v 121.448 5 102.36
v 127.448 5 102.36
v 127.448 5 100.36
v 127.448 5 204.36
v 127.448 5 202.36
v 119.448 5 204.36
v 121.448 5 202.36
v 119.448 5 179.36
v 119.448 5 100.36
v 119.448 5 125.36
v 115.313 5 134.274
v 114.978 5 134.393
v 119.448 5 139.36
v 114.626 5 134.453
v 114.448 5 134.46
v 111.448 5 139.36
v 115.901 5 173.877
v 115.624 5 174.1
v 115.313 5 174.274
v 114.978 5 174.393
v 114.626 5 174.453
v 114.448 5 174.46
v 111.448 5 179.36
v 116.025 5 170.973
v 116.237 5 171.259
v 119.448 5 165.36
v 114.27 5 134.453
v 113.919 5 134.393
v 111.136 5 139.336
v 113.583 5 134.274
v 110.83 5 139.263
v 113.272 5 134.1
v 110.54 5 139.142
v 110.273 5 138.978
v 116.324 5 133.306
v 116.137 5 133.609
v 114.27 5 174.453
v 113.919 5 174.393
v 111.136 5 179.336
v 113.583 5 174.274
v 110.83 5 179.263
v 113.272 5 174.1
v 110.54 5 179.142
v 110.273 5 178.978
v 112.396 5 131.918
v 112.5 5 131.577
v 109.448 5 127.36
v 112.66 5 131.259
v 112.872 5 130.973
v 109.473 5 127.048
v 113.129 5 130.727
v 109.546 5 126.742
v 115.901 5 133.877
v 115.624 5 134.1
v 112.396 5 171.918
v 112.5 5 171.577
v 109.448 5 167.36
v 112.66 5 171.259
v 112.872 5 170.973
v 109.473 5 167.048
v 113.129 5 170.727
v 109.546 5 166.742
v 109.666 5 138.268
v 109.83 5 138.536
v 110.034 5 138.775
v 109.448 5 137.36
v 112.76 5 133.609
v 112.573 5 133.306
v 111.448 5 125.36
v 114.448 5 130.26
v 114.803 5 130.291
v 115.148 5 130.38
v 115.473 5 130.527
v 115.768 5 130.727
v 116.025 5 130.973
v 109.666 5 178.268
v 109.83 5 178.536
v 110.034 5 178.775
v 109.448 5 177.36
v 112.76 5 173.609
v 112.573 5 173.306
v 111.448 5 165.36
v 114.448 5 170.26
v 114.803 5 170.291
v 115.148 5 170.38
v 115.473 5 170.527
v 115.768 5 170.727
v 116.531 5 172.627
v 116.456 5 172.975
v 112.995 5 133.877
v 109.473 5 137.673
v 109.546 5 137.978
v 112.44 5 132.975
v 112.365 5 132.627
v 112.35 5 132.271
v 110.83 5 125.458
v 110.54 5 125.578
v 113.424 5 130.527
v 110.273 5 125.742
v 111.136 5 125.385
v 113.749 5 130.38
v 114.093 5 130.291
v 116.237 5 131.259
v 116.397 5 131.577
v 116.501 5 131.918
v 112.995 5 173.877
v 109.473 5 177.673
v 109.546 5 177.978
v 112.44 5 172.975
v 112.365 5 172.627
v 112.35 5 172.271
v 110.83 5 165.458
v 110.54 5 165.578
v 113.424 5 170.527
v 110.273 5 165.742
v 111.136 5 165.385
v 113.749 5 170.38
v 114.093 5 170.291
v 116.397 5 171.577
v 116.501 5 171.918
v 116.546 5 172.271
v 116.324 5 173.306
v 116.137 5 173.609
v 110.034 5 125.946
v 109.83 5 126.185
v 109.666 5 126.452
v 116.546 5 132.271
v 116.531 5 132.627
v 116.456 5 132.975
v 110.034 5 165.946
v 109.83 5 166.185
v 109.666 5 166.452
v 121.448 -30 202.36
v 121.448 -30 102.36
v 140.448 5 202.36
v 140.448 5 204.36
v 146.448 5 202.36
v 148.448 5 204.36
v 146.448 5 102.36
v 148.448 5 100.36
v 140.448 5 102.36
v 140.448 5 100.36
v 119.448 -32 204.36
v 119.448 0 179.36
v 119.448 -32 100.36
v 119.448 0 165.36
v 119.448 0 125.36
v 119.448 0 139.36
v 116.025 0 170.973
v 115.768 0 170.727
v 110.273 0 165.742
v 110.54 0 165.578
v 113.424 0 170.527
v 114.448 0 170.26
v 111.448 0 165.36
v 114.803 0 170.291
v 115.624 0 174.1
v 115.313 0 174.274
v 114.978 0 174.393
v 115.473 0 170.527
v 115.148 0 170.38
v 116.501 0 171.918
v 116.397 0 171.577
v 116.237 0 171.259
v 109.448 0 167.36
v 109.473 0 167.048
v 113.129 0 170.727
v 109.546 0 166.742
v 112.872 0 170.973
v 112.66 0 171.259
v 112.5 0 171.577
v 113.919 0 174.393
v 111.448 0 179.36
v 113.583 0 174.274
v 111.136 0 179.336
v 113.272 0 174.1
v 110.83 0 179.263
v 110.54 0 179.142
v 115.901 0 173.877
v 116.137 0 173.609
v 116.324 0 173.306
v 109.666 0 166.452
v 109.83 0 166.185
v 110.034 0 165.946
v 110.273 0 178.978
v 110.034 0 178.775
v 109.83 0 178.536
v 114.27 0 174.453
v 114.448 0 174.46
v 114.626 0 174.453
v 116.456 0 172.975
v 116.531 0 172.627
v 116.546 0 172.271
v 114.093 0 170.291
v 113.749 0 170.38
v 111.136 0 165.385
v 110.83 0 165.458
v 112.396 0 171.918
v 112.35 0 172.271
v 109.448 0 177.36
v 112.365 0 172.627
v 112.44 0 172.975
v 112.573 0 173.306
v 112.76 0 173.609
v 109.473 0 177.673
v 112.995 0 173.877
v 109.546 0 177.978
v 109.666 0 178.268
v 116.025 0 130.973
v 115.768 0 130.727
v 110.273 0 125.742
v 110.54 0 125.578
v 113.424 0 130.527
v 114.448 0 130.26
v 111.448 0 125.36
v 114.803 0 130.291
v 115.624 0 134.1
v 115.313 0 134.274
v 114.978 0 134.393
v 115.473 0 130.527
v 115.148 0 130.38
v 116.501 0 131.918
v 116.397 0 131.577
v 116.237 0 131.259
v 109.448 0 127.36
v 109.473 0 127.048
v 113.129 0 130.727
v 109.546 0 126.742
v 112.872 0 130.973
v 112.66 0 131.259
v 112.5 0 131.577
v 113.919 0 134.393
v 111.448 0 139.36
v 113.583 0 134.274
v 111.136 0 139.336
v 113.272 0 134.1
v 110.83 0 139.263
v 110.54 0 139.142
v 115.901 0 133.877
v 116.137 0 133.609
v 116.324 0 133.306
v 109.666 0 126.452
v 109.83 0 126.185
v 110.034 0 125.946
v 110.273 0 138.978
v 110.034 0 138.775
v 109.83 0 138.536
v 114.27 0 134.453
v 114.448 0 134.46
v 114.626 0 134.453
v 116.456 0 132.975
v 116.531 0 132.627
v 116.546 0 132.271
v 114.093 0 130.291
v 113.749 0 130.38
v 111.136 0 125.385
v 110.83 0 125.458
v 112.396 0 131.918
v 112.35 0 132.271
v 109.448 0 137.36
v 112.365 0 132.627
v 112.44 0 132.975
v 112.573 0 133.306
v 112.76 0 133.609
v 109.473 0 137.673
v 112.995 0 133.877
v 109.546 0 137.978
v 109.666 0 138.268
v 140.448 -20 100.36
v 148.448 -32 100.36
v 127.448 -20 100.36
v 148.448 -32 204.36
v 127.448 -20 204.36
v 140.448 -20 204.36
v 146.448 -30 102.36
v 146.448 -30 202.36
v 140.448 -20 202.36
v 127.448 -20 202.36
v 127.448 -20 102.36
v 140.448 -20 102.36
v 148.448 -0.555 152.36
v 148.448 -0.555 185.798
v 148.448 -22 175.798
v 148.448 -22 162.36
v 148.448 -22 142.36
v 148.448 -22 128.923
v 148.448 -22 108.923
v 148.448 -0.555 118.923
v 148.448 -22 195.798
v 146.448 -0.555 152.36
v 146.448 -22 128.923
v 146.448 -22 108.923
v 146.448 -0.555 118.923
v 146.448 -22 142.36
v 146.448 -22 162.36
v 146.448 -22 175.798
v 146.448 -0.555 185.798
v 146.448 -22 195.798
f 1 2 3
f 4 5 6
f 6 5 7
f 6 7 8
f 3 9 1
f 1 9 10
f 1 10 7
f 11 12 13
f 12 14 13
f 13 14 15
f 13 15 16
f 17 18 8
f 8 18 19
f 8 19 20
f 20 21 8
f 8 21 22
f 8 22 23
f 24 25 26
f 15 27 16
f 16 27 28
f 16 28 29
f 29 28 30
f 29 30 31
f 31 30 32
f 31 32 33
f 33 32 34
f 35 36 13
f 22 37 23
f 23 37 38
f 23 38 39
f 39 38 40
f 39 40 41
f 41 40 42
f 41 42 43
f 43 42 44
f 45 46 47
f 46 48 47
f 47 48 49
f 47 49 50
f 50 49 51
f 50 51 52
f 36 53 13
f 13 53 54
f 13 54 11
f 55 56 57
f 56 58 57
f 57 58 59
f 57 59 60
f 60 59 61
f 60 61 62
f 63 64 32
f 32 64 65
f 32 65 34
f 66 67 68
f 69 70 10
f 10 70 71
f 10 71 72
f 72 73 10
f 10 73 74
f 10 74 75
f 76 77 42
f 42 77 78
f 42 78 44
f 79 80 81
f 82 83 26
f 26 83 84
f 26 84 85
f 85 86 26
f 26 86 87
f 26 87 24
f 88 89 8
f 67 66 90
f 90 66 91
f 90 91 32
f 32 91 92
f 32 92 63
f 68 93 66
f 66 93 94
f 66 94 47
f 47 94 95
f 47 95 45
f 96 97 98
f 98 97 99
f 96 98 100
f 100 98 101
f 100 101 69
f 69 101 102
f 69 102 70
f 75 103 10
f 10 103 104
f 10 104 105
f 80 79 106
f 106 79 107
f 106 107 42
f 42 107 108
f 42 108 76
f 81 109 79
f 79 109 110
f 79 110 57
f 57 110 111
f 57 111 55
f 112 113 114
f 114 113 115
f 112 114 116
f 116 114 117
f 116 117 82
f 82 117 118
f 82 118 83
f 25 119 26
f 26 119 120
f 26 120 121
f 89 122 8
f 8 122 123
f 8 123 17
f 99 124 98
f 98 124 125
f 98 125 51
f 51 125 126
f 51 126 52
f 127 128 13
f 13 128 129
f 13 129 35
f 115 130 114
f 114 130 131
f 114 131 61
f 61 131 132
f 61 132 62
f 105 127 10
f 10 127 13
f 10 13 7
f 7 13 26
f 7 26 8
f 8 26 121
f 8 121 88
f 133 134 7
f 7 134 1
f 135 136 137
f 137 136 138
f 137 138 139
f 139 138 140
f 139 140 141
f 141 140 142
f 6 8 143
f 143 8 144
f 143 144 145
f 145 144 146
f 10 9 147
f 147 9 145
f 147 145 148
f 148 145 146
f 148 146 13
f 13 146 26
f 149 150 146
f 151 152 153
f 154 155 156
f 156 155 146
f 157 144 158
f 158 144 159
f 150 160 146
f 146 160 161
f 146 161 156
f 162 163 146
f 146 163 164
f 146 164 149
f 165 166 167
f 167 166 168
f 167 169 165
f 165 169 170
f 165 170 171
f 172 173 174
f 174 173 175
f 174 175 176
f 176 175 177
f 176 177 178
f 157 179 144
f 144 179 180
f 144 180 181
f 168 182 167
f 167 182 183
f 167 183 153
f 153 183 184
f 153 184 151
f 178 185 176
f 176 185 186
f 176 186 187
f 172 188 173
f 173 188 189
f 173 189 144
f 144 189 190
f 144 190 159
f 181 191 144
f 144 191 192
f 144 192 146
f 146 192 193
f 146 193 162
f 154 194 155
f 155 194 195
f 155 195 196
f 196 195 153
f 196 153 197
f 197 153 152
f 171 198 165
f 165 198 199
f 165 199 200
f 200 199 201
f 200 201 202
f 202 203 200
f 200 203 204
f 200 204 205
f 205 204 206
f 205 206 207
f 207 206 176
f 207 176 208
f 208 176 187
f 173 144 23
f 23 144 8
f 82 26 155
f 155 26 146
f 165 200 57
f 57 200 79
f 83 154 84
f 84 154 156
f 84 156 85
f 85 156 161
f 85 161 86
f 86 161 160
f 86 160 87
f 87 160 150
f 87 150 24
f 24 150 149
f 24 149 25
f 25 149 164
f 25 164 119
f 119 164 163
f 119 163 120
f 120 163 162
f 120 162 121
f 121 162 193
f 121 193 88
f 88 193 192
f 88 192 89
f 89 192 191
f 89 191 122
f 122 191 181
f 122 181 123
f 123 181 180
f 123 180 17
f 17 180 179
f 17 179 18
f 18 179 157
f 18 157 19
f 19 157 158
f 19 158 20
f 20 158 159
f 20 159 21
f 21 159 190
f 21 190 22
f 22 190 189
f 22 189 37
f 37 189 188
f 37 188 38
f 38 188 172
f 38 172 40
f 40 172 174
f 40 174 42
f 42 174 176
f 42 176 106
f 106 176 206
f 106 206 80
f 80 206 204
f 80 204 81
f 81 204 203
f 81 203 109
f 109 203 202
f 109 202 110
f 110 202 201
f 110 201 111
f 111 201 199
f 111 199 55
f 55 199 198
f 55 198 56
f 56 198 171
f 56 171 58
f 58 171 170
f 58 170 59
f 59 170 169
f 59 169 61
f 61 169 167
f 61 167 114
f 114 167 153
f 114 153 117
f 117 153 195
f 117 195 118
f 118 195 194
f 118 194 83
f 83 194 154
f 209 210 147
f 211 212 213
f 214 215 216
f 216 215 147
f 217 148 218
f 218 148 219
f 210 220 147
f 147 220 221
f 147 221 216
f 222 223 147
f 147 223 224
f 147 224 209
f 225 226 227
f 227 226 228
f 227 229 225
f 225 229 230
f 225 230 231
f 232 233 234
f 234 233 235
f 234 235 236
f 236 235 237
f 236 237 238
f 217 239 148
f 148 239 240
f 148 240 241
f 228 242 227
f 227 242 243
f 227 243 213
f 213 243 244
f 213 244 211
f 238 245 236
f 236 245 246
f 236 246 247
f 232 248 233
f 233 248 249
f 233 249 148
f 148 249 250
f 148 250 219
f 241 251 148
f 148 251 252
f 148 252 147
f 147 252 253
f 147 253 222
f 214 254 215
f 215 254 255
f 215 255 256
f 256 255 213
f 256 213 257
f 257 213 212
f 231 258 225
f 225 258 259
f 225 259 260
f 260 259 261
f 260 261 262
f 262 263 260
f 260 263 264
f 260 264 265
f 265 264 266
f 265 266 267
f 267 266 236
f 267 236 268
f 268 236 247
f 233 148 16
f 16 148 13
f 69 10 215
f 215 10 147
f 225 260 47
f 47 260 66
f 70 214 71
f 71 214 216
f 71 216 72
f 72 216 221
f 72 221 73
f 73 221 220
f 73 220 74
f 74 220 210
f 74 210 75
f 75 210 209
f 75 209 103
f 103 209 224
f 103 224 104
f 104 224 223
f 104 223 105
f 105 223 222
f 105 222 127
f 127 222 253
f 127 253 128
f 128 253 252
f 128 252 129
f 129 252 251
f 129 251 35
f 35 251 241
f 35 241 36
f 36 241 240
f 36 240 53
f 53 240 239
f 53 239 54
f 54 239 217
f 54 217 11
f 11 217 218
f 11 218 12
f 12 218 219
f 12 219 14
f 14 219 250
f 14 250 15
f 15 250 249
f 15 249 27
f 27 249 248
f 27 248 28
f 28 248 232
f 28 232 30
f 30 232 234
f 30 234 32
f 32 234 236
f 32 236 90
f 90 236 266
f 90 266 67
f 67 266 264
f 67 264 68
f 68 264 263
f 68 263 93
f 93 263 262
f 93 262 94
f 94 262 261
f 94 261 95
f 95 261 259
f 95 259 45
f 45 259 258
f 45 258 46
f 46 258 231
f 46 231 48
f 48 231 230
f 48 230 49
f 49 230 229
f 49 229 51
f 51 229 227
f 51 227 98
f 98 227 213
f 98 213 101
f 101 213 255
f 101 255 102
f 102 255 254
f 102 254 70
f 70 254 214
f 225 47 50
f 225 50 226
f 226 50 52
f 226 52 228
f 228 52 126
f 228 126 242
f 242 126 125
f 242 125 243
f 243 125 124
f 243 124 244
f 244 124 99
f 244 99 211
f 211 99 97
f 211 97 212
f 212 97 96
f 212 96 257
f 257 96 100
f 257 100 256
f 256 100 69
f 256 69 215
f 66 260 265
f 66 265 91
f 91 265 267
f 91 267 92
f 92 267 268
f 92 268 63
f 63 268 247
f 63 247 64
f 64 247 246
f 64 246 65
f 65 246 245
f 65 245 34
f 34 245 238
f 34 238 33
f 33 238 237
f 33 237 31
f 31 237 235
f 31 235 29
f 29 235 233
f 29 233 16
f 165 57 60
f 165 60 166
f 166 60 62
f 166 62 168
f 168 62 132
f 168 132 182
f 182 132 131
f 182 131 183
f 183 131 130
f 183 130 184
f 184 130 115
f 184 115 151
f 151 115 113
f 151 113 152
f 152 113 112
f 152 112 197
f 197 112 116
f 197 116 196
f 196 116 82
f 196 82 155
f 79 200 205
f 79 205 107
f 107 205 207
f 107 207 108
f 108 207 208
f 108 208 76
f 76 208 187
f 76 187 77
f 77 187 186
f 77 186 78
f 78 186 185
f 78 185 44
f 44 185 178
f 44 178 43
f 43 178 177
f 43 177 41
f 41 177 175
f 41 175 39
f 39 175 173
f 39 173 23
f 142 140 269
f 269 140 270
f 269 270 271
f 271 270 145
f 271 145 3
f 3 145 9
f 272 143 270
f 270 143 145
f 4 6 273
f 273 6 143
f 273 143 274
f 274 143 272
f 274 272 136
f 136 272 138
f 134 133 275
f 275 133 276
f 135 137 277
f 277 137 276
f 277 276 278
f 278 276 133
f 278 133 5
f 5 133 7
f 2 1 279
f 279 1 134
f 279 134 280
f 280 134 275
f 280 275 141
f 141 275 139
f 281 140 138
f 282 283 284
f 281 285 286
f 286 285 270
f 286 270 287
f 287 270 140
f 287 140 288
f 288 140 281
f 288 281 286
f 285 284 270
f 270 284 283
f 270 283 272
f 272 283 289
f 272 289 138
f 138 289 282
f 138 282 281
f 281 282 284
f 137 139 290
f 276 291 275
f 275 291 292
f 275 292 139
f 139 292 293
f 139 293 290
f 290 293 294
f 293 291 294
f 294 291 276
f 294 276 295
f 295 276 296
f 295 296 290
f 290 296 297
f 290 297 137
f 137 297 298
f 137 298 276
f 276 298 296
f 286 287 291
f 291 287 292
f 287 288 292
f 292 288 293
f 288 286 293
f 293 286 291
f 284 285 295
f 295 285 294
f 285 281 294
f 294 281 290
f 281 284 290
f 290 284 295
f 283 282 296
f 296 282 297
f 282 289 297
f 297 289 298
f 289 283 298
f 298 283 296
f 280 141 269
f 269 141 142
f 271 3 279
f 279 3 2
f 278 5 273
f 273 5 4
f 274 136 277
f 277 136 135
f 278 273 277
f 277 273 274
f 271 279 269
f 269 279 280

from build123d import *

# Parameters (mm, degrees)
SKETCH2_W             = 10
SKETCH2_H             = 14
SKETCH2_R             = 2.1
BOSS_EXTRUDE1_DEPTH   = 5
BOSS_EXTRUDE1_2_DEPTH = 5
SKETCH3_W             = 44.5
SKETCH3_H             = 39
SKETCH3_W_2           = 14
SKETCH3_H_2           = 5
BOSS_EXTRUDE2_DEPTH   = 2
BOSS_EXTRUDE4_DEPTH   = 32
SKETCH5_W             = 2
SKETCH5_H             = 85
BOSS_EXTRUDE5_DEPTH   = 37
SKETCH6_W             = 14
SKETCH6_H             = 30
CUT_EXTRUDE1_DEPTH    = 200
SKETCH7_W             = 20
SKETCH7_H             = 20
CUT_EXTRUDE2_DEPTH    = 16
FILLET1_R             = 2
SKETCH8_W             = 119.619460544
SKETCH8_H             = 55.607641494
CUT_EXTRUDE3_DEPTH    = 32
SKETCH9_W             = 100
SKETCH9_H             = 35
BOSS_EXTRUDE6_DEPTH   = 2
SKETCH10_W            = 89
SKETCH10_H            = 4
CUT_EXTRUDE4_DEPTH    = 10
BOSS_EXTRUDE7_DEPTH   = 25
SKETCH12_W            = 2
SKETCH12_H            = 35
BOSS_EXTRUDE8_DEPTH   = 2
SKETCH13_W            = 104
SKETCH13_H            = 37
BOSS_EXTRUDE9_DEPTH   = 2
SKETCH14_W            = 13
SKETCH14_H            = 30
CUT_EXTRUDE5_DEPTH    = 104
SKETCH15_W            = 13
SKETCH15_H            = 25
CUT_EXTRUDE7_DEPTH    = 120


with BuildPart() as part:
    # Sketch2 → Boss-Extrude1 (new body)
    with BuildSketch(Plane(origin=(0, 0, 0), x_dir=(1, 0, 0), z_dir=(0, 1, 0))):
        with Locations((114.448385229, -132.360414745)):
            Rectangle(SKETCH2_W, SKETCH2_H)
        with Locations((114.448385229, -132.360414745)):
            Circle(SKETCH2_R, mode=Mode.SUBTRACT)
    extrude(amount=BOSS_EXTRUDE1_DEPTH)



with BuildPart() as body_2:
    # Sketch2 → Boss-Extrude1 2 (new body)
    with BuildSketch(Plane(origin=(0, 0, 0), x_dir=(1, 0, 0), z_dir=(0, 1, 0))):
        with Locations((114.448385229, -172.360414745)):
            Rectangle(SKETCH2_W, SKETCH2_H)
        with Locations((114.448385229, -172.360414745)):
            Circle(SKETCH2_R, mode=Mode.SUBTRACT)
    extrude(amount=BOSS_EXTRUDE1_2_DEPTH)


with BuildPart() as part_1:
    add(part.part)

    add(body_2.part)  # Boss-Extrude2 merges body 2
    # Sketch3 → Boss-Extrude2 (add)
    with BuildSketch(Plane(origin=(119.448385229, 0, 0), x_dir=(0, 0, -1), z_dir=(1, 0, 0))):
        Polygon((-152.360414745, -34), (-152.360414745, 5), (-165.360414745, 5), (-165.360414745, 0), (-179.360414745, 0), (-179.360414745, 5), (-196.860414745, 5), (-196.860414745, -34), align=None)
        with Locations((-130.110414745, -14.5)):
            Rectangle(SKETCH3_W, SKETCH3_H)
        with Locations((-172.360414745, 2.5)):
            Rectangle(SKETCH3_W_2, SKETCH3_H_2)
    extrude(amount=BOSS_EXTRUDE2_DEPTH)

    # Sketch4 → Boss-Extrude4 (add)
    with BuildSketch(Plane(origin=(121.448385229, 0, 0), x_dir=(0, 0, -1), z_dir=(1, 0, 0))):
        Polygon((-194.860414745, 5), (-196.860414745, 5), (-196.860414745, -34), (-107.860414745, -34), (-107.860414745, 5), (-109.860414745, 5), (-109.860414745, -32), (-194.860414745, -32), align=None)
    extrude(amount=BOSS_EXTRUDE4_DEPTH)

    # Sketch5 → Boss-Extrude5 (add)
    with BuildSketch(Plane(origin=(0, -32, 0), x_dir=(1, 0, 0), z_dir=(0, 1, 0))):
        with Locations((152.448385229, -152.360414745)):
            Rectangle(SKETCH5_W, SKETCH5_H)
    extrude(amount=BOSS_EXTRUDE5_DEPTH)

    # Sketch6 → Cut-Extrude1 (cut)
    with BuildSketch(Plane.XY.offset(196.860414745)):
        with Locations((136.448385229, -10)):
            Rectangle(SKETCH6_W, SKETCH6_H)
    extrude(amount=-CUT_EXTRUDE1_DEPTH, mode=Mode.SUBTRACT)

    # Sketch7 → Cut-Extrude2 (cut)
    with BuildSketch(Plane(origin=(153.448385229, 0, 0), x_dir=(0, 0, -1), z_dir=(1, 0, 0))):
        with Locations((-179.360414745, -14.5)):
            Rectangle(SKETCH7_W, SKETCH7_H)
        with Locations((-152.360414745, -14.5)):
            Rectangle(SKETCH7_W, SKETCH7_H)
        with Locations((-125.360414745, -14.5)):
            Rectangle(SKETCH7_W, SKETCH7_H)
    extrude(amount=-CUT_EXTRUDE2_DEPTH, mode=Mode.SUBTRACT)

    # Fillet1
    fillet1_edges = [part_1.edges().sort_by_distance(p)[0] for p in [
        (109.448385229, 2.5, 139.360414745),
        (109.448385229, 2.5, 125.360414745),
        (109.448385229, 2.5, 179.360414745),
        (109.448385229, 2.5, 165.360414745),
    ]]
    fillet(fillet1_edges, radius=FILLET1_R)

    # Sketch8 → Cut-Extrude3 (cut)
    with BuildSketch(Plane(origin=(153.448385229, 0, 0), x_dir=(0, 0, -1), z_dir=(1, 0, 0))):
        with Locations((-148.578534845, -15.335015755)):
            Rectangle(SKETCH8_W, SKETCH8_H)
    extrude(amount=-CUT_EXTRUDE3_DEPTH, mode=Mode.SUBTRACT)

    # Sketch9 → Boss-Extrude6 (add)
    with BuildSketch(Plane(origin=(121.448385229, 0, 0), x_dir=(0, 0, -1), z_dir=(1, 0, 0))):
        with Locations((-152.360414745, -12.5)):
            Rectangle(SKETCH9_W, SKETCH9_H)
    extrude(amount=-BOSS_EXTRUDE6_DEPTH)

    # Sketch10 → Cut-Extrude4 (cut)
    with BuildSketch(Plane(origin=(121.448385229, 0, 0), x_dir=(0, 0, -1), z_dir=(1, 0, 0))):
        with Locations((-152.360414745, -32)):
            Rectangle(SKETCH10_W, SKETCH10_H)
    extrude(amount=-CUT_EXTRUDE4_DEPTH, mode=Mode.SUBTRACT)



with BuildPart() as body_2_2:
    # Sketch11 → Boss-Extrude7 (new body)
    with BuildSketch(Plane(origin=(121.448385229, 0, 0), x_dir=(0, 0, -1), z_dir=(1, 0, 0))):
        Polygon((-202.360414745, -30), (-202.360414745, 5), (-204.360414745, 5), (-204.360414745, -32), (-100.360414745, -32), (-100.360414745, 5), (-102.360414745, 5), (-102.360414745, -30), align=None)
    extrude(amount=BOSS_EXTRUDE7_DEPTH)


with BuildPart() as part_2:
    add(part_1.part)

    add(body_2_2.part)  # Boss-Extrude8 merges body 2 2
    # Sketch12 → Boss-Extrude8 (add)
    with BuildSketch(Plane.ZY.offset(-121.448385229)):
        with Locations((101.360414745, -12.5)):
            Rectangle(SKETCH12_W, SKETCH12_H)
        Polygon((102.360414745, -30), (100.360414745, -30), (100.360414745, -32), (204.360414745, -32), (204.360414745, -30), (202.360414745, -30), align=None)
        with Locations((203.360414745, -12.5)):
            Rectangle(SKETCH12_W, SKETCH12_H)
    extrude(amount=BOSS_EXTRUDE8_DEPTH)

    # Sketch13 → Boss-Extrude9 (add)
    with BuildSketch(Plane(origin=(146.448385229, 0, 0), x_dir=(0, 0, -1), z_dir=(1, 0, 0))):
        with Locations((-152.360414745, -13.5)):
            Rectangle(SKETCH13_W, SKETCH13_H)
        Polygon((-195.798080738, -22), (-175.798080738, -22), (-185.798080738, -0.554930795), align=None, mode=Mode.SUBTRACT)
        Polygon((-128.922748753, -22), (-118.922748753, -0.554930795), (-108.922748753, -22), align=None, mode=Mode.SUBTRACT)
        Polygon((-162.360414745, -22), (-142.360414745, -22), (-152.360414745, -0.554930795), align=None, mode=Mode.SUBTRACT)
    extrude(amount=BOSS_EXTRUDE9_DEPTH)

    # Sketch14 → Cut-Extrude5 (cut)
    with BuildSketch(Plane(origin=(0, 0, 100.360414745), x_dir=(-1, 0, 0), z_dir=(0, 0, -1))):
        with Locations((-133.948385229, 5)):
            Rectangle(SKETCH14_W, SKETCH14_H)
    extrude(amount=-CUT_EXTRUDE5_DEPTH, mode=Mode.SUBTRACT)

    # Sketch15 → Cut-Extrude7 (cut)
    with BuildSketch(Plane(origin=(0, 0, 100.360414745), x_dir=(-1, 0, 0), z_dir=(0, 0, -1))):
        with Locations((-133.948385229, -7.5)):
            Rectangle(SKETCH15_W, SKETCH15_H)
    extrude(amount=-CUT_EXTRUDE7_DEPTH, mode=Mode.SUBTRACT)


solid = part_2.part
